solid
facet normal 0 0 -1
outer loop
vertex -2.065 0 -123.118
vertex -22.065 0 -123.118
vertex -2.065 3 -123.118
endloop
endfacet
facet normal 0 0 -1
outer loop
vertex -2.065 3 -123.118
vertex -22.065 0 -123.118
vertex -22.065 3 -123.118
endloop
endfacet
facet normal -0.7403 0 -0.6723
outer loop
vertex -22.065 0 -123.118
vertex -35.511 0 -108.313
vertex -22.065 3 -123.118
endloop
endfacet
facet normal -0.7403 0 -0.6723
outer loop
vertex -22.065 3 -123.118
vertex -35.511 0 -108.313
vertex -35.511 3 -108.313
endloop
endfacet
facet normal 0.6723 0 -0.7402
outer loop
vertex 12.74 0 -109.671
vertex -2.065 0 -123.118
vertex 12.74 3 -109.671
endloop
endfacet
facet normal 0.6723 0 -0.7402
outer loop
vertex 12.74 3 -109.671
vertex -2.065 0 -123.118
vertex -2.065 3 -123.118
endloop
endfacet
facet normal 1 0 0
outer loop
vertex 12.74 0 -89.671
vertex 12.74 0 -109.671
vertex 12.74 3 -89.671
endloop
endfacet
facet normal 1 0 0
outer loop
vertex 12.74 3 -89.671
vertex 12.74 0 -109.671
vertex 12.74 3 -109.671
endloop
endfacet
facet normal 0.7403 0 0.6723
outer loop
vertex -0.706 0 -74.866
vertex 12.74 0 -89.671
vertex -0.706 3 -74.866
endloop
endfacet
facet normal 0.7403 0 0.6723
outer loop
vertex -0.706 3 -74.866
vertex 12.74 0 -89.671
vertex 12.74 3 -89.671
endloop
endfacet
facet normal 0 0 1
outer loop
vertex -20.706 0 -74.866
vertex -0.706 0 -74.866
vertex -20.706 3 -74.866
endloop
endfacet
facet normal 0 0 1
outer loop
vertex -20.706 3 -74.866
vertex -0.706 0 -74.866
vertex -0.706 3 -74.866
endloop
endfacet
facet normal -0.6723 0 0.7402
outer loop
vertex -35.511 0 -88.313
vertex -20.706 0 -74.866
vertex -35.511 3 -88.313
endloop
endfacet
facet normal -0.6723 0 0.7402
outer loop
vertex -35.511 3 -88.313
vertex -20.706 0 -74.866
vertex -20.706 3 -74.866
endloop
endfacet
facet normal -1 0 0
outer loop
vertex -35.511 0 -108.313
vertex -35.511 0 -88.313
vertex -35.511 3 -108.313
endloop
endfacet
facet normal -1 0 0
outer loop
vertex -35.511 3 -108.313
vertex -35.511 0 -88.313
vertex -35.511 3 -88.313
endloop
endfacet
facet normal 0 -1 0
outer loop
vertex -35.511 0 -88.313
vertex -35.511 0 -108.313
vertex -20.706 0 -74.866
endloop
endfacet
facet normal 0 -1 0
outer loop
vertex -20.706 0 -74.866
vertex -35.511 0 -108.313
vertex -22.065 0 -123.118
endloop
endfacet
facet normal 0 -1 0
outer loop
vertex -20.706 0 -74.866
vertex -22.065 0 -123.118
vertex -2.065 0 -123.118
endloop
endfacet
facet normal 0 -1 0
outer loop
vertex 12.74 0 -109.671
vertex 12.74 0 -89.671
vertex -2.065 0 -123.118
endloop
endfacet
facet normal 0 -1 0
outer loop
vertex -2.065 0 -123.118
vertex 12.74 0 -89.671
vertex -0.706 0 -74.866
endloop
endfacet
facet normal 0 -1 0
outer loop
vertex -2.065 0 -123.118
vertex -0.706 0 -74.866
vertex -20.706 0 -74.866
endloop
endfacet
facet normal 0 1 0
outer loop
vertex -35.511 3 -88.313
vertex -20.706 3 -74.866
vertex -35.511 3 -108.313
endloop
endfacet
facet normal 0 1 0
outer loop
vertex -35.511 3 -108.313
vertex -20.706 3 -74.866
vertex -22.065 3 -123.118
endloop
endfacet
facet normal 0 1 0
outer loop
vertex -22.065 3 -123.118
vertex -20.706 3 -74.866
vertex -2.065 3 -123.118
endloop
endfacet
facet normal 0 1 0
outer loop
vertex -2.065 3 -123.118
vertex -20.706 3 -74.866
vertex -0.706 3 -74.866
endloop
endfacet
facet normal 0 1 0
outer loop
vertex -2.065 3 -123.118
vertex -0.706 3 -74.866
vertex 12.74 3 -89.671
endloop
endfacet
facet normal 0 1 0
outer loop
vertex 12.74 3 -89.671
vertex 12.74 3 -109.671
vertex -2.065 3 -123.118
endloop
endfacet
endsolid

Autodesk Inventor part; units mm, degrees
ref_plane "YZ Plane" through (0, 0, 0) normal (1, 0, 0) x (0, 1, 0)
ref_plane "XZ Plane" through (0, 0, 0) normal (0, 1, 0) x (-1, 0, 0)
ref_plane "XY Plane" through (0, 0, 0) normal (0, 0, 1) x (1, 0, 0)
sketch "Skizze1" plane through (0, 0, 0) normal (0, 1, 0) x (-1, 0, 0)
  line L0 (35.5112, -88.3128) -> (35.5112, -108.3128)
  line L1 (35.5112, -108.3128) -> (22.0645, -123.1178)
  line L2 (22.0645, -123.1178) -> (2.0645, -123.1178)
  line L3 (2.0645, -123.1178) -> (-12.7404, -109.6711)
  line L4 (-12.7404, -109.6711) -> (-12.7404, -89.6711)
  line L5 (-12.7404, -89.6711) -> (0.7063, -74.8661)
  line L6 (0.7063, -74.8661) -> (20.7063, -74.8661)
  line L7 (20.7063, -74.8661) -> (35.5112, -88.3128)
  point P0 (0, 0)
  dimension "d0" = 20
  dimension "d1" = 20
  dimension "d2" = 20
  dimension "d3" = 20
  dimension "d4" = 20
  dimension "d5" = 20
  dimension "d6" = 20
  dimension "d7" = 20
extrude "Extrusion1" add sketch "Skizze1" along normal blind 3
sketch "Skizze2" plane through (-2.0645, 0, -123.1178) normal (0, 0, -1) x (-1, 0, 0)
  circle A0 centre (10, 1.5) radius 2.5
  line L0 (0, 3) -> (20, 3) projected
  point P0 (-2.0645, 0)
  dimension "d11" = 5
  dimension "d12" = 1.5
extrude "Extrusion2" add sketch "Skizze2" along normal blind 81.748
sketch "Skizze3" plane through (-12.0645, 1.5, -204.8658) normal (0, 0, -1) x (-1, 0, 0)
  line L0 (-35, -15) -> (35, -15)
  line L1 (35, -15) -> (35, 15)
  line L2 (35, 15) -> (-35, 15)
  line L3 (-35, 15) -> (-35, -15)
  arc A0 (2, -1.5) -> (-2, -1.5) centre (0, 0) ccw projected
  line L4 (-35, -15) -> (35, 15) construction
  line L5 (35, -15) -> (-35, 15) construction
  point P0 (-12.0645, -1.5)
  point P1 (-2, 1.5)
  point P2 (0, -2.5)
  point P3 (0, 2.5)
  dimension "d15" = 70
  dimension "d16" = 30
extrude "Extrusion3" add sketch "Skizze3" against normal blind 2
sketch "Skizze6" plane through (-47.0645, -13.5, -204.8658) normal (0, -1, 0) x (1, 0, 0)
  line L0 (33, 81.748) -> (25, 81.748) projected
  line L1 (25, 81.748) -> (125.5267, 81.748)
  line L2 (125.5267, 81.748) -> (125.5267, -4.5987)
  line L3 (125.5267, -4.5987) -> (25, -4.5987)
  line L4 (25, -4.5987) -> (25, 81.748)
  line L5 (25, -4.5987) -> (-39.723, -4.5987)
  line L6 (-39.723, -4.5987) -> (-39.723, 43.9362)
  line L7 (-39.723, 43.9362) -> (25, 43.9362)
  line L8 (25, 43.9362) -> (25, -4.5987)
  point P0 (47.0645, 204.8658)
extrude "Extrusion5" cut sketch "Skizze6" against normal blind 50
properties part number "Stoppschild_Teil_Oben"
